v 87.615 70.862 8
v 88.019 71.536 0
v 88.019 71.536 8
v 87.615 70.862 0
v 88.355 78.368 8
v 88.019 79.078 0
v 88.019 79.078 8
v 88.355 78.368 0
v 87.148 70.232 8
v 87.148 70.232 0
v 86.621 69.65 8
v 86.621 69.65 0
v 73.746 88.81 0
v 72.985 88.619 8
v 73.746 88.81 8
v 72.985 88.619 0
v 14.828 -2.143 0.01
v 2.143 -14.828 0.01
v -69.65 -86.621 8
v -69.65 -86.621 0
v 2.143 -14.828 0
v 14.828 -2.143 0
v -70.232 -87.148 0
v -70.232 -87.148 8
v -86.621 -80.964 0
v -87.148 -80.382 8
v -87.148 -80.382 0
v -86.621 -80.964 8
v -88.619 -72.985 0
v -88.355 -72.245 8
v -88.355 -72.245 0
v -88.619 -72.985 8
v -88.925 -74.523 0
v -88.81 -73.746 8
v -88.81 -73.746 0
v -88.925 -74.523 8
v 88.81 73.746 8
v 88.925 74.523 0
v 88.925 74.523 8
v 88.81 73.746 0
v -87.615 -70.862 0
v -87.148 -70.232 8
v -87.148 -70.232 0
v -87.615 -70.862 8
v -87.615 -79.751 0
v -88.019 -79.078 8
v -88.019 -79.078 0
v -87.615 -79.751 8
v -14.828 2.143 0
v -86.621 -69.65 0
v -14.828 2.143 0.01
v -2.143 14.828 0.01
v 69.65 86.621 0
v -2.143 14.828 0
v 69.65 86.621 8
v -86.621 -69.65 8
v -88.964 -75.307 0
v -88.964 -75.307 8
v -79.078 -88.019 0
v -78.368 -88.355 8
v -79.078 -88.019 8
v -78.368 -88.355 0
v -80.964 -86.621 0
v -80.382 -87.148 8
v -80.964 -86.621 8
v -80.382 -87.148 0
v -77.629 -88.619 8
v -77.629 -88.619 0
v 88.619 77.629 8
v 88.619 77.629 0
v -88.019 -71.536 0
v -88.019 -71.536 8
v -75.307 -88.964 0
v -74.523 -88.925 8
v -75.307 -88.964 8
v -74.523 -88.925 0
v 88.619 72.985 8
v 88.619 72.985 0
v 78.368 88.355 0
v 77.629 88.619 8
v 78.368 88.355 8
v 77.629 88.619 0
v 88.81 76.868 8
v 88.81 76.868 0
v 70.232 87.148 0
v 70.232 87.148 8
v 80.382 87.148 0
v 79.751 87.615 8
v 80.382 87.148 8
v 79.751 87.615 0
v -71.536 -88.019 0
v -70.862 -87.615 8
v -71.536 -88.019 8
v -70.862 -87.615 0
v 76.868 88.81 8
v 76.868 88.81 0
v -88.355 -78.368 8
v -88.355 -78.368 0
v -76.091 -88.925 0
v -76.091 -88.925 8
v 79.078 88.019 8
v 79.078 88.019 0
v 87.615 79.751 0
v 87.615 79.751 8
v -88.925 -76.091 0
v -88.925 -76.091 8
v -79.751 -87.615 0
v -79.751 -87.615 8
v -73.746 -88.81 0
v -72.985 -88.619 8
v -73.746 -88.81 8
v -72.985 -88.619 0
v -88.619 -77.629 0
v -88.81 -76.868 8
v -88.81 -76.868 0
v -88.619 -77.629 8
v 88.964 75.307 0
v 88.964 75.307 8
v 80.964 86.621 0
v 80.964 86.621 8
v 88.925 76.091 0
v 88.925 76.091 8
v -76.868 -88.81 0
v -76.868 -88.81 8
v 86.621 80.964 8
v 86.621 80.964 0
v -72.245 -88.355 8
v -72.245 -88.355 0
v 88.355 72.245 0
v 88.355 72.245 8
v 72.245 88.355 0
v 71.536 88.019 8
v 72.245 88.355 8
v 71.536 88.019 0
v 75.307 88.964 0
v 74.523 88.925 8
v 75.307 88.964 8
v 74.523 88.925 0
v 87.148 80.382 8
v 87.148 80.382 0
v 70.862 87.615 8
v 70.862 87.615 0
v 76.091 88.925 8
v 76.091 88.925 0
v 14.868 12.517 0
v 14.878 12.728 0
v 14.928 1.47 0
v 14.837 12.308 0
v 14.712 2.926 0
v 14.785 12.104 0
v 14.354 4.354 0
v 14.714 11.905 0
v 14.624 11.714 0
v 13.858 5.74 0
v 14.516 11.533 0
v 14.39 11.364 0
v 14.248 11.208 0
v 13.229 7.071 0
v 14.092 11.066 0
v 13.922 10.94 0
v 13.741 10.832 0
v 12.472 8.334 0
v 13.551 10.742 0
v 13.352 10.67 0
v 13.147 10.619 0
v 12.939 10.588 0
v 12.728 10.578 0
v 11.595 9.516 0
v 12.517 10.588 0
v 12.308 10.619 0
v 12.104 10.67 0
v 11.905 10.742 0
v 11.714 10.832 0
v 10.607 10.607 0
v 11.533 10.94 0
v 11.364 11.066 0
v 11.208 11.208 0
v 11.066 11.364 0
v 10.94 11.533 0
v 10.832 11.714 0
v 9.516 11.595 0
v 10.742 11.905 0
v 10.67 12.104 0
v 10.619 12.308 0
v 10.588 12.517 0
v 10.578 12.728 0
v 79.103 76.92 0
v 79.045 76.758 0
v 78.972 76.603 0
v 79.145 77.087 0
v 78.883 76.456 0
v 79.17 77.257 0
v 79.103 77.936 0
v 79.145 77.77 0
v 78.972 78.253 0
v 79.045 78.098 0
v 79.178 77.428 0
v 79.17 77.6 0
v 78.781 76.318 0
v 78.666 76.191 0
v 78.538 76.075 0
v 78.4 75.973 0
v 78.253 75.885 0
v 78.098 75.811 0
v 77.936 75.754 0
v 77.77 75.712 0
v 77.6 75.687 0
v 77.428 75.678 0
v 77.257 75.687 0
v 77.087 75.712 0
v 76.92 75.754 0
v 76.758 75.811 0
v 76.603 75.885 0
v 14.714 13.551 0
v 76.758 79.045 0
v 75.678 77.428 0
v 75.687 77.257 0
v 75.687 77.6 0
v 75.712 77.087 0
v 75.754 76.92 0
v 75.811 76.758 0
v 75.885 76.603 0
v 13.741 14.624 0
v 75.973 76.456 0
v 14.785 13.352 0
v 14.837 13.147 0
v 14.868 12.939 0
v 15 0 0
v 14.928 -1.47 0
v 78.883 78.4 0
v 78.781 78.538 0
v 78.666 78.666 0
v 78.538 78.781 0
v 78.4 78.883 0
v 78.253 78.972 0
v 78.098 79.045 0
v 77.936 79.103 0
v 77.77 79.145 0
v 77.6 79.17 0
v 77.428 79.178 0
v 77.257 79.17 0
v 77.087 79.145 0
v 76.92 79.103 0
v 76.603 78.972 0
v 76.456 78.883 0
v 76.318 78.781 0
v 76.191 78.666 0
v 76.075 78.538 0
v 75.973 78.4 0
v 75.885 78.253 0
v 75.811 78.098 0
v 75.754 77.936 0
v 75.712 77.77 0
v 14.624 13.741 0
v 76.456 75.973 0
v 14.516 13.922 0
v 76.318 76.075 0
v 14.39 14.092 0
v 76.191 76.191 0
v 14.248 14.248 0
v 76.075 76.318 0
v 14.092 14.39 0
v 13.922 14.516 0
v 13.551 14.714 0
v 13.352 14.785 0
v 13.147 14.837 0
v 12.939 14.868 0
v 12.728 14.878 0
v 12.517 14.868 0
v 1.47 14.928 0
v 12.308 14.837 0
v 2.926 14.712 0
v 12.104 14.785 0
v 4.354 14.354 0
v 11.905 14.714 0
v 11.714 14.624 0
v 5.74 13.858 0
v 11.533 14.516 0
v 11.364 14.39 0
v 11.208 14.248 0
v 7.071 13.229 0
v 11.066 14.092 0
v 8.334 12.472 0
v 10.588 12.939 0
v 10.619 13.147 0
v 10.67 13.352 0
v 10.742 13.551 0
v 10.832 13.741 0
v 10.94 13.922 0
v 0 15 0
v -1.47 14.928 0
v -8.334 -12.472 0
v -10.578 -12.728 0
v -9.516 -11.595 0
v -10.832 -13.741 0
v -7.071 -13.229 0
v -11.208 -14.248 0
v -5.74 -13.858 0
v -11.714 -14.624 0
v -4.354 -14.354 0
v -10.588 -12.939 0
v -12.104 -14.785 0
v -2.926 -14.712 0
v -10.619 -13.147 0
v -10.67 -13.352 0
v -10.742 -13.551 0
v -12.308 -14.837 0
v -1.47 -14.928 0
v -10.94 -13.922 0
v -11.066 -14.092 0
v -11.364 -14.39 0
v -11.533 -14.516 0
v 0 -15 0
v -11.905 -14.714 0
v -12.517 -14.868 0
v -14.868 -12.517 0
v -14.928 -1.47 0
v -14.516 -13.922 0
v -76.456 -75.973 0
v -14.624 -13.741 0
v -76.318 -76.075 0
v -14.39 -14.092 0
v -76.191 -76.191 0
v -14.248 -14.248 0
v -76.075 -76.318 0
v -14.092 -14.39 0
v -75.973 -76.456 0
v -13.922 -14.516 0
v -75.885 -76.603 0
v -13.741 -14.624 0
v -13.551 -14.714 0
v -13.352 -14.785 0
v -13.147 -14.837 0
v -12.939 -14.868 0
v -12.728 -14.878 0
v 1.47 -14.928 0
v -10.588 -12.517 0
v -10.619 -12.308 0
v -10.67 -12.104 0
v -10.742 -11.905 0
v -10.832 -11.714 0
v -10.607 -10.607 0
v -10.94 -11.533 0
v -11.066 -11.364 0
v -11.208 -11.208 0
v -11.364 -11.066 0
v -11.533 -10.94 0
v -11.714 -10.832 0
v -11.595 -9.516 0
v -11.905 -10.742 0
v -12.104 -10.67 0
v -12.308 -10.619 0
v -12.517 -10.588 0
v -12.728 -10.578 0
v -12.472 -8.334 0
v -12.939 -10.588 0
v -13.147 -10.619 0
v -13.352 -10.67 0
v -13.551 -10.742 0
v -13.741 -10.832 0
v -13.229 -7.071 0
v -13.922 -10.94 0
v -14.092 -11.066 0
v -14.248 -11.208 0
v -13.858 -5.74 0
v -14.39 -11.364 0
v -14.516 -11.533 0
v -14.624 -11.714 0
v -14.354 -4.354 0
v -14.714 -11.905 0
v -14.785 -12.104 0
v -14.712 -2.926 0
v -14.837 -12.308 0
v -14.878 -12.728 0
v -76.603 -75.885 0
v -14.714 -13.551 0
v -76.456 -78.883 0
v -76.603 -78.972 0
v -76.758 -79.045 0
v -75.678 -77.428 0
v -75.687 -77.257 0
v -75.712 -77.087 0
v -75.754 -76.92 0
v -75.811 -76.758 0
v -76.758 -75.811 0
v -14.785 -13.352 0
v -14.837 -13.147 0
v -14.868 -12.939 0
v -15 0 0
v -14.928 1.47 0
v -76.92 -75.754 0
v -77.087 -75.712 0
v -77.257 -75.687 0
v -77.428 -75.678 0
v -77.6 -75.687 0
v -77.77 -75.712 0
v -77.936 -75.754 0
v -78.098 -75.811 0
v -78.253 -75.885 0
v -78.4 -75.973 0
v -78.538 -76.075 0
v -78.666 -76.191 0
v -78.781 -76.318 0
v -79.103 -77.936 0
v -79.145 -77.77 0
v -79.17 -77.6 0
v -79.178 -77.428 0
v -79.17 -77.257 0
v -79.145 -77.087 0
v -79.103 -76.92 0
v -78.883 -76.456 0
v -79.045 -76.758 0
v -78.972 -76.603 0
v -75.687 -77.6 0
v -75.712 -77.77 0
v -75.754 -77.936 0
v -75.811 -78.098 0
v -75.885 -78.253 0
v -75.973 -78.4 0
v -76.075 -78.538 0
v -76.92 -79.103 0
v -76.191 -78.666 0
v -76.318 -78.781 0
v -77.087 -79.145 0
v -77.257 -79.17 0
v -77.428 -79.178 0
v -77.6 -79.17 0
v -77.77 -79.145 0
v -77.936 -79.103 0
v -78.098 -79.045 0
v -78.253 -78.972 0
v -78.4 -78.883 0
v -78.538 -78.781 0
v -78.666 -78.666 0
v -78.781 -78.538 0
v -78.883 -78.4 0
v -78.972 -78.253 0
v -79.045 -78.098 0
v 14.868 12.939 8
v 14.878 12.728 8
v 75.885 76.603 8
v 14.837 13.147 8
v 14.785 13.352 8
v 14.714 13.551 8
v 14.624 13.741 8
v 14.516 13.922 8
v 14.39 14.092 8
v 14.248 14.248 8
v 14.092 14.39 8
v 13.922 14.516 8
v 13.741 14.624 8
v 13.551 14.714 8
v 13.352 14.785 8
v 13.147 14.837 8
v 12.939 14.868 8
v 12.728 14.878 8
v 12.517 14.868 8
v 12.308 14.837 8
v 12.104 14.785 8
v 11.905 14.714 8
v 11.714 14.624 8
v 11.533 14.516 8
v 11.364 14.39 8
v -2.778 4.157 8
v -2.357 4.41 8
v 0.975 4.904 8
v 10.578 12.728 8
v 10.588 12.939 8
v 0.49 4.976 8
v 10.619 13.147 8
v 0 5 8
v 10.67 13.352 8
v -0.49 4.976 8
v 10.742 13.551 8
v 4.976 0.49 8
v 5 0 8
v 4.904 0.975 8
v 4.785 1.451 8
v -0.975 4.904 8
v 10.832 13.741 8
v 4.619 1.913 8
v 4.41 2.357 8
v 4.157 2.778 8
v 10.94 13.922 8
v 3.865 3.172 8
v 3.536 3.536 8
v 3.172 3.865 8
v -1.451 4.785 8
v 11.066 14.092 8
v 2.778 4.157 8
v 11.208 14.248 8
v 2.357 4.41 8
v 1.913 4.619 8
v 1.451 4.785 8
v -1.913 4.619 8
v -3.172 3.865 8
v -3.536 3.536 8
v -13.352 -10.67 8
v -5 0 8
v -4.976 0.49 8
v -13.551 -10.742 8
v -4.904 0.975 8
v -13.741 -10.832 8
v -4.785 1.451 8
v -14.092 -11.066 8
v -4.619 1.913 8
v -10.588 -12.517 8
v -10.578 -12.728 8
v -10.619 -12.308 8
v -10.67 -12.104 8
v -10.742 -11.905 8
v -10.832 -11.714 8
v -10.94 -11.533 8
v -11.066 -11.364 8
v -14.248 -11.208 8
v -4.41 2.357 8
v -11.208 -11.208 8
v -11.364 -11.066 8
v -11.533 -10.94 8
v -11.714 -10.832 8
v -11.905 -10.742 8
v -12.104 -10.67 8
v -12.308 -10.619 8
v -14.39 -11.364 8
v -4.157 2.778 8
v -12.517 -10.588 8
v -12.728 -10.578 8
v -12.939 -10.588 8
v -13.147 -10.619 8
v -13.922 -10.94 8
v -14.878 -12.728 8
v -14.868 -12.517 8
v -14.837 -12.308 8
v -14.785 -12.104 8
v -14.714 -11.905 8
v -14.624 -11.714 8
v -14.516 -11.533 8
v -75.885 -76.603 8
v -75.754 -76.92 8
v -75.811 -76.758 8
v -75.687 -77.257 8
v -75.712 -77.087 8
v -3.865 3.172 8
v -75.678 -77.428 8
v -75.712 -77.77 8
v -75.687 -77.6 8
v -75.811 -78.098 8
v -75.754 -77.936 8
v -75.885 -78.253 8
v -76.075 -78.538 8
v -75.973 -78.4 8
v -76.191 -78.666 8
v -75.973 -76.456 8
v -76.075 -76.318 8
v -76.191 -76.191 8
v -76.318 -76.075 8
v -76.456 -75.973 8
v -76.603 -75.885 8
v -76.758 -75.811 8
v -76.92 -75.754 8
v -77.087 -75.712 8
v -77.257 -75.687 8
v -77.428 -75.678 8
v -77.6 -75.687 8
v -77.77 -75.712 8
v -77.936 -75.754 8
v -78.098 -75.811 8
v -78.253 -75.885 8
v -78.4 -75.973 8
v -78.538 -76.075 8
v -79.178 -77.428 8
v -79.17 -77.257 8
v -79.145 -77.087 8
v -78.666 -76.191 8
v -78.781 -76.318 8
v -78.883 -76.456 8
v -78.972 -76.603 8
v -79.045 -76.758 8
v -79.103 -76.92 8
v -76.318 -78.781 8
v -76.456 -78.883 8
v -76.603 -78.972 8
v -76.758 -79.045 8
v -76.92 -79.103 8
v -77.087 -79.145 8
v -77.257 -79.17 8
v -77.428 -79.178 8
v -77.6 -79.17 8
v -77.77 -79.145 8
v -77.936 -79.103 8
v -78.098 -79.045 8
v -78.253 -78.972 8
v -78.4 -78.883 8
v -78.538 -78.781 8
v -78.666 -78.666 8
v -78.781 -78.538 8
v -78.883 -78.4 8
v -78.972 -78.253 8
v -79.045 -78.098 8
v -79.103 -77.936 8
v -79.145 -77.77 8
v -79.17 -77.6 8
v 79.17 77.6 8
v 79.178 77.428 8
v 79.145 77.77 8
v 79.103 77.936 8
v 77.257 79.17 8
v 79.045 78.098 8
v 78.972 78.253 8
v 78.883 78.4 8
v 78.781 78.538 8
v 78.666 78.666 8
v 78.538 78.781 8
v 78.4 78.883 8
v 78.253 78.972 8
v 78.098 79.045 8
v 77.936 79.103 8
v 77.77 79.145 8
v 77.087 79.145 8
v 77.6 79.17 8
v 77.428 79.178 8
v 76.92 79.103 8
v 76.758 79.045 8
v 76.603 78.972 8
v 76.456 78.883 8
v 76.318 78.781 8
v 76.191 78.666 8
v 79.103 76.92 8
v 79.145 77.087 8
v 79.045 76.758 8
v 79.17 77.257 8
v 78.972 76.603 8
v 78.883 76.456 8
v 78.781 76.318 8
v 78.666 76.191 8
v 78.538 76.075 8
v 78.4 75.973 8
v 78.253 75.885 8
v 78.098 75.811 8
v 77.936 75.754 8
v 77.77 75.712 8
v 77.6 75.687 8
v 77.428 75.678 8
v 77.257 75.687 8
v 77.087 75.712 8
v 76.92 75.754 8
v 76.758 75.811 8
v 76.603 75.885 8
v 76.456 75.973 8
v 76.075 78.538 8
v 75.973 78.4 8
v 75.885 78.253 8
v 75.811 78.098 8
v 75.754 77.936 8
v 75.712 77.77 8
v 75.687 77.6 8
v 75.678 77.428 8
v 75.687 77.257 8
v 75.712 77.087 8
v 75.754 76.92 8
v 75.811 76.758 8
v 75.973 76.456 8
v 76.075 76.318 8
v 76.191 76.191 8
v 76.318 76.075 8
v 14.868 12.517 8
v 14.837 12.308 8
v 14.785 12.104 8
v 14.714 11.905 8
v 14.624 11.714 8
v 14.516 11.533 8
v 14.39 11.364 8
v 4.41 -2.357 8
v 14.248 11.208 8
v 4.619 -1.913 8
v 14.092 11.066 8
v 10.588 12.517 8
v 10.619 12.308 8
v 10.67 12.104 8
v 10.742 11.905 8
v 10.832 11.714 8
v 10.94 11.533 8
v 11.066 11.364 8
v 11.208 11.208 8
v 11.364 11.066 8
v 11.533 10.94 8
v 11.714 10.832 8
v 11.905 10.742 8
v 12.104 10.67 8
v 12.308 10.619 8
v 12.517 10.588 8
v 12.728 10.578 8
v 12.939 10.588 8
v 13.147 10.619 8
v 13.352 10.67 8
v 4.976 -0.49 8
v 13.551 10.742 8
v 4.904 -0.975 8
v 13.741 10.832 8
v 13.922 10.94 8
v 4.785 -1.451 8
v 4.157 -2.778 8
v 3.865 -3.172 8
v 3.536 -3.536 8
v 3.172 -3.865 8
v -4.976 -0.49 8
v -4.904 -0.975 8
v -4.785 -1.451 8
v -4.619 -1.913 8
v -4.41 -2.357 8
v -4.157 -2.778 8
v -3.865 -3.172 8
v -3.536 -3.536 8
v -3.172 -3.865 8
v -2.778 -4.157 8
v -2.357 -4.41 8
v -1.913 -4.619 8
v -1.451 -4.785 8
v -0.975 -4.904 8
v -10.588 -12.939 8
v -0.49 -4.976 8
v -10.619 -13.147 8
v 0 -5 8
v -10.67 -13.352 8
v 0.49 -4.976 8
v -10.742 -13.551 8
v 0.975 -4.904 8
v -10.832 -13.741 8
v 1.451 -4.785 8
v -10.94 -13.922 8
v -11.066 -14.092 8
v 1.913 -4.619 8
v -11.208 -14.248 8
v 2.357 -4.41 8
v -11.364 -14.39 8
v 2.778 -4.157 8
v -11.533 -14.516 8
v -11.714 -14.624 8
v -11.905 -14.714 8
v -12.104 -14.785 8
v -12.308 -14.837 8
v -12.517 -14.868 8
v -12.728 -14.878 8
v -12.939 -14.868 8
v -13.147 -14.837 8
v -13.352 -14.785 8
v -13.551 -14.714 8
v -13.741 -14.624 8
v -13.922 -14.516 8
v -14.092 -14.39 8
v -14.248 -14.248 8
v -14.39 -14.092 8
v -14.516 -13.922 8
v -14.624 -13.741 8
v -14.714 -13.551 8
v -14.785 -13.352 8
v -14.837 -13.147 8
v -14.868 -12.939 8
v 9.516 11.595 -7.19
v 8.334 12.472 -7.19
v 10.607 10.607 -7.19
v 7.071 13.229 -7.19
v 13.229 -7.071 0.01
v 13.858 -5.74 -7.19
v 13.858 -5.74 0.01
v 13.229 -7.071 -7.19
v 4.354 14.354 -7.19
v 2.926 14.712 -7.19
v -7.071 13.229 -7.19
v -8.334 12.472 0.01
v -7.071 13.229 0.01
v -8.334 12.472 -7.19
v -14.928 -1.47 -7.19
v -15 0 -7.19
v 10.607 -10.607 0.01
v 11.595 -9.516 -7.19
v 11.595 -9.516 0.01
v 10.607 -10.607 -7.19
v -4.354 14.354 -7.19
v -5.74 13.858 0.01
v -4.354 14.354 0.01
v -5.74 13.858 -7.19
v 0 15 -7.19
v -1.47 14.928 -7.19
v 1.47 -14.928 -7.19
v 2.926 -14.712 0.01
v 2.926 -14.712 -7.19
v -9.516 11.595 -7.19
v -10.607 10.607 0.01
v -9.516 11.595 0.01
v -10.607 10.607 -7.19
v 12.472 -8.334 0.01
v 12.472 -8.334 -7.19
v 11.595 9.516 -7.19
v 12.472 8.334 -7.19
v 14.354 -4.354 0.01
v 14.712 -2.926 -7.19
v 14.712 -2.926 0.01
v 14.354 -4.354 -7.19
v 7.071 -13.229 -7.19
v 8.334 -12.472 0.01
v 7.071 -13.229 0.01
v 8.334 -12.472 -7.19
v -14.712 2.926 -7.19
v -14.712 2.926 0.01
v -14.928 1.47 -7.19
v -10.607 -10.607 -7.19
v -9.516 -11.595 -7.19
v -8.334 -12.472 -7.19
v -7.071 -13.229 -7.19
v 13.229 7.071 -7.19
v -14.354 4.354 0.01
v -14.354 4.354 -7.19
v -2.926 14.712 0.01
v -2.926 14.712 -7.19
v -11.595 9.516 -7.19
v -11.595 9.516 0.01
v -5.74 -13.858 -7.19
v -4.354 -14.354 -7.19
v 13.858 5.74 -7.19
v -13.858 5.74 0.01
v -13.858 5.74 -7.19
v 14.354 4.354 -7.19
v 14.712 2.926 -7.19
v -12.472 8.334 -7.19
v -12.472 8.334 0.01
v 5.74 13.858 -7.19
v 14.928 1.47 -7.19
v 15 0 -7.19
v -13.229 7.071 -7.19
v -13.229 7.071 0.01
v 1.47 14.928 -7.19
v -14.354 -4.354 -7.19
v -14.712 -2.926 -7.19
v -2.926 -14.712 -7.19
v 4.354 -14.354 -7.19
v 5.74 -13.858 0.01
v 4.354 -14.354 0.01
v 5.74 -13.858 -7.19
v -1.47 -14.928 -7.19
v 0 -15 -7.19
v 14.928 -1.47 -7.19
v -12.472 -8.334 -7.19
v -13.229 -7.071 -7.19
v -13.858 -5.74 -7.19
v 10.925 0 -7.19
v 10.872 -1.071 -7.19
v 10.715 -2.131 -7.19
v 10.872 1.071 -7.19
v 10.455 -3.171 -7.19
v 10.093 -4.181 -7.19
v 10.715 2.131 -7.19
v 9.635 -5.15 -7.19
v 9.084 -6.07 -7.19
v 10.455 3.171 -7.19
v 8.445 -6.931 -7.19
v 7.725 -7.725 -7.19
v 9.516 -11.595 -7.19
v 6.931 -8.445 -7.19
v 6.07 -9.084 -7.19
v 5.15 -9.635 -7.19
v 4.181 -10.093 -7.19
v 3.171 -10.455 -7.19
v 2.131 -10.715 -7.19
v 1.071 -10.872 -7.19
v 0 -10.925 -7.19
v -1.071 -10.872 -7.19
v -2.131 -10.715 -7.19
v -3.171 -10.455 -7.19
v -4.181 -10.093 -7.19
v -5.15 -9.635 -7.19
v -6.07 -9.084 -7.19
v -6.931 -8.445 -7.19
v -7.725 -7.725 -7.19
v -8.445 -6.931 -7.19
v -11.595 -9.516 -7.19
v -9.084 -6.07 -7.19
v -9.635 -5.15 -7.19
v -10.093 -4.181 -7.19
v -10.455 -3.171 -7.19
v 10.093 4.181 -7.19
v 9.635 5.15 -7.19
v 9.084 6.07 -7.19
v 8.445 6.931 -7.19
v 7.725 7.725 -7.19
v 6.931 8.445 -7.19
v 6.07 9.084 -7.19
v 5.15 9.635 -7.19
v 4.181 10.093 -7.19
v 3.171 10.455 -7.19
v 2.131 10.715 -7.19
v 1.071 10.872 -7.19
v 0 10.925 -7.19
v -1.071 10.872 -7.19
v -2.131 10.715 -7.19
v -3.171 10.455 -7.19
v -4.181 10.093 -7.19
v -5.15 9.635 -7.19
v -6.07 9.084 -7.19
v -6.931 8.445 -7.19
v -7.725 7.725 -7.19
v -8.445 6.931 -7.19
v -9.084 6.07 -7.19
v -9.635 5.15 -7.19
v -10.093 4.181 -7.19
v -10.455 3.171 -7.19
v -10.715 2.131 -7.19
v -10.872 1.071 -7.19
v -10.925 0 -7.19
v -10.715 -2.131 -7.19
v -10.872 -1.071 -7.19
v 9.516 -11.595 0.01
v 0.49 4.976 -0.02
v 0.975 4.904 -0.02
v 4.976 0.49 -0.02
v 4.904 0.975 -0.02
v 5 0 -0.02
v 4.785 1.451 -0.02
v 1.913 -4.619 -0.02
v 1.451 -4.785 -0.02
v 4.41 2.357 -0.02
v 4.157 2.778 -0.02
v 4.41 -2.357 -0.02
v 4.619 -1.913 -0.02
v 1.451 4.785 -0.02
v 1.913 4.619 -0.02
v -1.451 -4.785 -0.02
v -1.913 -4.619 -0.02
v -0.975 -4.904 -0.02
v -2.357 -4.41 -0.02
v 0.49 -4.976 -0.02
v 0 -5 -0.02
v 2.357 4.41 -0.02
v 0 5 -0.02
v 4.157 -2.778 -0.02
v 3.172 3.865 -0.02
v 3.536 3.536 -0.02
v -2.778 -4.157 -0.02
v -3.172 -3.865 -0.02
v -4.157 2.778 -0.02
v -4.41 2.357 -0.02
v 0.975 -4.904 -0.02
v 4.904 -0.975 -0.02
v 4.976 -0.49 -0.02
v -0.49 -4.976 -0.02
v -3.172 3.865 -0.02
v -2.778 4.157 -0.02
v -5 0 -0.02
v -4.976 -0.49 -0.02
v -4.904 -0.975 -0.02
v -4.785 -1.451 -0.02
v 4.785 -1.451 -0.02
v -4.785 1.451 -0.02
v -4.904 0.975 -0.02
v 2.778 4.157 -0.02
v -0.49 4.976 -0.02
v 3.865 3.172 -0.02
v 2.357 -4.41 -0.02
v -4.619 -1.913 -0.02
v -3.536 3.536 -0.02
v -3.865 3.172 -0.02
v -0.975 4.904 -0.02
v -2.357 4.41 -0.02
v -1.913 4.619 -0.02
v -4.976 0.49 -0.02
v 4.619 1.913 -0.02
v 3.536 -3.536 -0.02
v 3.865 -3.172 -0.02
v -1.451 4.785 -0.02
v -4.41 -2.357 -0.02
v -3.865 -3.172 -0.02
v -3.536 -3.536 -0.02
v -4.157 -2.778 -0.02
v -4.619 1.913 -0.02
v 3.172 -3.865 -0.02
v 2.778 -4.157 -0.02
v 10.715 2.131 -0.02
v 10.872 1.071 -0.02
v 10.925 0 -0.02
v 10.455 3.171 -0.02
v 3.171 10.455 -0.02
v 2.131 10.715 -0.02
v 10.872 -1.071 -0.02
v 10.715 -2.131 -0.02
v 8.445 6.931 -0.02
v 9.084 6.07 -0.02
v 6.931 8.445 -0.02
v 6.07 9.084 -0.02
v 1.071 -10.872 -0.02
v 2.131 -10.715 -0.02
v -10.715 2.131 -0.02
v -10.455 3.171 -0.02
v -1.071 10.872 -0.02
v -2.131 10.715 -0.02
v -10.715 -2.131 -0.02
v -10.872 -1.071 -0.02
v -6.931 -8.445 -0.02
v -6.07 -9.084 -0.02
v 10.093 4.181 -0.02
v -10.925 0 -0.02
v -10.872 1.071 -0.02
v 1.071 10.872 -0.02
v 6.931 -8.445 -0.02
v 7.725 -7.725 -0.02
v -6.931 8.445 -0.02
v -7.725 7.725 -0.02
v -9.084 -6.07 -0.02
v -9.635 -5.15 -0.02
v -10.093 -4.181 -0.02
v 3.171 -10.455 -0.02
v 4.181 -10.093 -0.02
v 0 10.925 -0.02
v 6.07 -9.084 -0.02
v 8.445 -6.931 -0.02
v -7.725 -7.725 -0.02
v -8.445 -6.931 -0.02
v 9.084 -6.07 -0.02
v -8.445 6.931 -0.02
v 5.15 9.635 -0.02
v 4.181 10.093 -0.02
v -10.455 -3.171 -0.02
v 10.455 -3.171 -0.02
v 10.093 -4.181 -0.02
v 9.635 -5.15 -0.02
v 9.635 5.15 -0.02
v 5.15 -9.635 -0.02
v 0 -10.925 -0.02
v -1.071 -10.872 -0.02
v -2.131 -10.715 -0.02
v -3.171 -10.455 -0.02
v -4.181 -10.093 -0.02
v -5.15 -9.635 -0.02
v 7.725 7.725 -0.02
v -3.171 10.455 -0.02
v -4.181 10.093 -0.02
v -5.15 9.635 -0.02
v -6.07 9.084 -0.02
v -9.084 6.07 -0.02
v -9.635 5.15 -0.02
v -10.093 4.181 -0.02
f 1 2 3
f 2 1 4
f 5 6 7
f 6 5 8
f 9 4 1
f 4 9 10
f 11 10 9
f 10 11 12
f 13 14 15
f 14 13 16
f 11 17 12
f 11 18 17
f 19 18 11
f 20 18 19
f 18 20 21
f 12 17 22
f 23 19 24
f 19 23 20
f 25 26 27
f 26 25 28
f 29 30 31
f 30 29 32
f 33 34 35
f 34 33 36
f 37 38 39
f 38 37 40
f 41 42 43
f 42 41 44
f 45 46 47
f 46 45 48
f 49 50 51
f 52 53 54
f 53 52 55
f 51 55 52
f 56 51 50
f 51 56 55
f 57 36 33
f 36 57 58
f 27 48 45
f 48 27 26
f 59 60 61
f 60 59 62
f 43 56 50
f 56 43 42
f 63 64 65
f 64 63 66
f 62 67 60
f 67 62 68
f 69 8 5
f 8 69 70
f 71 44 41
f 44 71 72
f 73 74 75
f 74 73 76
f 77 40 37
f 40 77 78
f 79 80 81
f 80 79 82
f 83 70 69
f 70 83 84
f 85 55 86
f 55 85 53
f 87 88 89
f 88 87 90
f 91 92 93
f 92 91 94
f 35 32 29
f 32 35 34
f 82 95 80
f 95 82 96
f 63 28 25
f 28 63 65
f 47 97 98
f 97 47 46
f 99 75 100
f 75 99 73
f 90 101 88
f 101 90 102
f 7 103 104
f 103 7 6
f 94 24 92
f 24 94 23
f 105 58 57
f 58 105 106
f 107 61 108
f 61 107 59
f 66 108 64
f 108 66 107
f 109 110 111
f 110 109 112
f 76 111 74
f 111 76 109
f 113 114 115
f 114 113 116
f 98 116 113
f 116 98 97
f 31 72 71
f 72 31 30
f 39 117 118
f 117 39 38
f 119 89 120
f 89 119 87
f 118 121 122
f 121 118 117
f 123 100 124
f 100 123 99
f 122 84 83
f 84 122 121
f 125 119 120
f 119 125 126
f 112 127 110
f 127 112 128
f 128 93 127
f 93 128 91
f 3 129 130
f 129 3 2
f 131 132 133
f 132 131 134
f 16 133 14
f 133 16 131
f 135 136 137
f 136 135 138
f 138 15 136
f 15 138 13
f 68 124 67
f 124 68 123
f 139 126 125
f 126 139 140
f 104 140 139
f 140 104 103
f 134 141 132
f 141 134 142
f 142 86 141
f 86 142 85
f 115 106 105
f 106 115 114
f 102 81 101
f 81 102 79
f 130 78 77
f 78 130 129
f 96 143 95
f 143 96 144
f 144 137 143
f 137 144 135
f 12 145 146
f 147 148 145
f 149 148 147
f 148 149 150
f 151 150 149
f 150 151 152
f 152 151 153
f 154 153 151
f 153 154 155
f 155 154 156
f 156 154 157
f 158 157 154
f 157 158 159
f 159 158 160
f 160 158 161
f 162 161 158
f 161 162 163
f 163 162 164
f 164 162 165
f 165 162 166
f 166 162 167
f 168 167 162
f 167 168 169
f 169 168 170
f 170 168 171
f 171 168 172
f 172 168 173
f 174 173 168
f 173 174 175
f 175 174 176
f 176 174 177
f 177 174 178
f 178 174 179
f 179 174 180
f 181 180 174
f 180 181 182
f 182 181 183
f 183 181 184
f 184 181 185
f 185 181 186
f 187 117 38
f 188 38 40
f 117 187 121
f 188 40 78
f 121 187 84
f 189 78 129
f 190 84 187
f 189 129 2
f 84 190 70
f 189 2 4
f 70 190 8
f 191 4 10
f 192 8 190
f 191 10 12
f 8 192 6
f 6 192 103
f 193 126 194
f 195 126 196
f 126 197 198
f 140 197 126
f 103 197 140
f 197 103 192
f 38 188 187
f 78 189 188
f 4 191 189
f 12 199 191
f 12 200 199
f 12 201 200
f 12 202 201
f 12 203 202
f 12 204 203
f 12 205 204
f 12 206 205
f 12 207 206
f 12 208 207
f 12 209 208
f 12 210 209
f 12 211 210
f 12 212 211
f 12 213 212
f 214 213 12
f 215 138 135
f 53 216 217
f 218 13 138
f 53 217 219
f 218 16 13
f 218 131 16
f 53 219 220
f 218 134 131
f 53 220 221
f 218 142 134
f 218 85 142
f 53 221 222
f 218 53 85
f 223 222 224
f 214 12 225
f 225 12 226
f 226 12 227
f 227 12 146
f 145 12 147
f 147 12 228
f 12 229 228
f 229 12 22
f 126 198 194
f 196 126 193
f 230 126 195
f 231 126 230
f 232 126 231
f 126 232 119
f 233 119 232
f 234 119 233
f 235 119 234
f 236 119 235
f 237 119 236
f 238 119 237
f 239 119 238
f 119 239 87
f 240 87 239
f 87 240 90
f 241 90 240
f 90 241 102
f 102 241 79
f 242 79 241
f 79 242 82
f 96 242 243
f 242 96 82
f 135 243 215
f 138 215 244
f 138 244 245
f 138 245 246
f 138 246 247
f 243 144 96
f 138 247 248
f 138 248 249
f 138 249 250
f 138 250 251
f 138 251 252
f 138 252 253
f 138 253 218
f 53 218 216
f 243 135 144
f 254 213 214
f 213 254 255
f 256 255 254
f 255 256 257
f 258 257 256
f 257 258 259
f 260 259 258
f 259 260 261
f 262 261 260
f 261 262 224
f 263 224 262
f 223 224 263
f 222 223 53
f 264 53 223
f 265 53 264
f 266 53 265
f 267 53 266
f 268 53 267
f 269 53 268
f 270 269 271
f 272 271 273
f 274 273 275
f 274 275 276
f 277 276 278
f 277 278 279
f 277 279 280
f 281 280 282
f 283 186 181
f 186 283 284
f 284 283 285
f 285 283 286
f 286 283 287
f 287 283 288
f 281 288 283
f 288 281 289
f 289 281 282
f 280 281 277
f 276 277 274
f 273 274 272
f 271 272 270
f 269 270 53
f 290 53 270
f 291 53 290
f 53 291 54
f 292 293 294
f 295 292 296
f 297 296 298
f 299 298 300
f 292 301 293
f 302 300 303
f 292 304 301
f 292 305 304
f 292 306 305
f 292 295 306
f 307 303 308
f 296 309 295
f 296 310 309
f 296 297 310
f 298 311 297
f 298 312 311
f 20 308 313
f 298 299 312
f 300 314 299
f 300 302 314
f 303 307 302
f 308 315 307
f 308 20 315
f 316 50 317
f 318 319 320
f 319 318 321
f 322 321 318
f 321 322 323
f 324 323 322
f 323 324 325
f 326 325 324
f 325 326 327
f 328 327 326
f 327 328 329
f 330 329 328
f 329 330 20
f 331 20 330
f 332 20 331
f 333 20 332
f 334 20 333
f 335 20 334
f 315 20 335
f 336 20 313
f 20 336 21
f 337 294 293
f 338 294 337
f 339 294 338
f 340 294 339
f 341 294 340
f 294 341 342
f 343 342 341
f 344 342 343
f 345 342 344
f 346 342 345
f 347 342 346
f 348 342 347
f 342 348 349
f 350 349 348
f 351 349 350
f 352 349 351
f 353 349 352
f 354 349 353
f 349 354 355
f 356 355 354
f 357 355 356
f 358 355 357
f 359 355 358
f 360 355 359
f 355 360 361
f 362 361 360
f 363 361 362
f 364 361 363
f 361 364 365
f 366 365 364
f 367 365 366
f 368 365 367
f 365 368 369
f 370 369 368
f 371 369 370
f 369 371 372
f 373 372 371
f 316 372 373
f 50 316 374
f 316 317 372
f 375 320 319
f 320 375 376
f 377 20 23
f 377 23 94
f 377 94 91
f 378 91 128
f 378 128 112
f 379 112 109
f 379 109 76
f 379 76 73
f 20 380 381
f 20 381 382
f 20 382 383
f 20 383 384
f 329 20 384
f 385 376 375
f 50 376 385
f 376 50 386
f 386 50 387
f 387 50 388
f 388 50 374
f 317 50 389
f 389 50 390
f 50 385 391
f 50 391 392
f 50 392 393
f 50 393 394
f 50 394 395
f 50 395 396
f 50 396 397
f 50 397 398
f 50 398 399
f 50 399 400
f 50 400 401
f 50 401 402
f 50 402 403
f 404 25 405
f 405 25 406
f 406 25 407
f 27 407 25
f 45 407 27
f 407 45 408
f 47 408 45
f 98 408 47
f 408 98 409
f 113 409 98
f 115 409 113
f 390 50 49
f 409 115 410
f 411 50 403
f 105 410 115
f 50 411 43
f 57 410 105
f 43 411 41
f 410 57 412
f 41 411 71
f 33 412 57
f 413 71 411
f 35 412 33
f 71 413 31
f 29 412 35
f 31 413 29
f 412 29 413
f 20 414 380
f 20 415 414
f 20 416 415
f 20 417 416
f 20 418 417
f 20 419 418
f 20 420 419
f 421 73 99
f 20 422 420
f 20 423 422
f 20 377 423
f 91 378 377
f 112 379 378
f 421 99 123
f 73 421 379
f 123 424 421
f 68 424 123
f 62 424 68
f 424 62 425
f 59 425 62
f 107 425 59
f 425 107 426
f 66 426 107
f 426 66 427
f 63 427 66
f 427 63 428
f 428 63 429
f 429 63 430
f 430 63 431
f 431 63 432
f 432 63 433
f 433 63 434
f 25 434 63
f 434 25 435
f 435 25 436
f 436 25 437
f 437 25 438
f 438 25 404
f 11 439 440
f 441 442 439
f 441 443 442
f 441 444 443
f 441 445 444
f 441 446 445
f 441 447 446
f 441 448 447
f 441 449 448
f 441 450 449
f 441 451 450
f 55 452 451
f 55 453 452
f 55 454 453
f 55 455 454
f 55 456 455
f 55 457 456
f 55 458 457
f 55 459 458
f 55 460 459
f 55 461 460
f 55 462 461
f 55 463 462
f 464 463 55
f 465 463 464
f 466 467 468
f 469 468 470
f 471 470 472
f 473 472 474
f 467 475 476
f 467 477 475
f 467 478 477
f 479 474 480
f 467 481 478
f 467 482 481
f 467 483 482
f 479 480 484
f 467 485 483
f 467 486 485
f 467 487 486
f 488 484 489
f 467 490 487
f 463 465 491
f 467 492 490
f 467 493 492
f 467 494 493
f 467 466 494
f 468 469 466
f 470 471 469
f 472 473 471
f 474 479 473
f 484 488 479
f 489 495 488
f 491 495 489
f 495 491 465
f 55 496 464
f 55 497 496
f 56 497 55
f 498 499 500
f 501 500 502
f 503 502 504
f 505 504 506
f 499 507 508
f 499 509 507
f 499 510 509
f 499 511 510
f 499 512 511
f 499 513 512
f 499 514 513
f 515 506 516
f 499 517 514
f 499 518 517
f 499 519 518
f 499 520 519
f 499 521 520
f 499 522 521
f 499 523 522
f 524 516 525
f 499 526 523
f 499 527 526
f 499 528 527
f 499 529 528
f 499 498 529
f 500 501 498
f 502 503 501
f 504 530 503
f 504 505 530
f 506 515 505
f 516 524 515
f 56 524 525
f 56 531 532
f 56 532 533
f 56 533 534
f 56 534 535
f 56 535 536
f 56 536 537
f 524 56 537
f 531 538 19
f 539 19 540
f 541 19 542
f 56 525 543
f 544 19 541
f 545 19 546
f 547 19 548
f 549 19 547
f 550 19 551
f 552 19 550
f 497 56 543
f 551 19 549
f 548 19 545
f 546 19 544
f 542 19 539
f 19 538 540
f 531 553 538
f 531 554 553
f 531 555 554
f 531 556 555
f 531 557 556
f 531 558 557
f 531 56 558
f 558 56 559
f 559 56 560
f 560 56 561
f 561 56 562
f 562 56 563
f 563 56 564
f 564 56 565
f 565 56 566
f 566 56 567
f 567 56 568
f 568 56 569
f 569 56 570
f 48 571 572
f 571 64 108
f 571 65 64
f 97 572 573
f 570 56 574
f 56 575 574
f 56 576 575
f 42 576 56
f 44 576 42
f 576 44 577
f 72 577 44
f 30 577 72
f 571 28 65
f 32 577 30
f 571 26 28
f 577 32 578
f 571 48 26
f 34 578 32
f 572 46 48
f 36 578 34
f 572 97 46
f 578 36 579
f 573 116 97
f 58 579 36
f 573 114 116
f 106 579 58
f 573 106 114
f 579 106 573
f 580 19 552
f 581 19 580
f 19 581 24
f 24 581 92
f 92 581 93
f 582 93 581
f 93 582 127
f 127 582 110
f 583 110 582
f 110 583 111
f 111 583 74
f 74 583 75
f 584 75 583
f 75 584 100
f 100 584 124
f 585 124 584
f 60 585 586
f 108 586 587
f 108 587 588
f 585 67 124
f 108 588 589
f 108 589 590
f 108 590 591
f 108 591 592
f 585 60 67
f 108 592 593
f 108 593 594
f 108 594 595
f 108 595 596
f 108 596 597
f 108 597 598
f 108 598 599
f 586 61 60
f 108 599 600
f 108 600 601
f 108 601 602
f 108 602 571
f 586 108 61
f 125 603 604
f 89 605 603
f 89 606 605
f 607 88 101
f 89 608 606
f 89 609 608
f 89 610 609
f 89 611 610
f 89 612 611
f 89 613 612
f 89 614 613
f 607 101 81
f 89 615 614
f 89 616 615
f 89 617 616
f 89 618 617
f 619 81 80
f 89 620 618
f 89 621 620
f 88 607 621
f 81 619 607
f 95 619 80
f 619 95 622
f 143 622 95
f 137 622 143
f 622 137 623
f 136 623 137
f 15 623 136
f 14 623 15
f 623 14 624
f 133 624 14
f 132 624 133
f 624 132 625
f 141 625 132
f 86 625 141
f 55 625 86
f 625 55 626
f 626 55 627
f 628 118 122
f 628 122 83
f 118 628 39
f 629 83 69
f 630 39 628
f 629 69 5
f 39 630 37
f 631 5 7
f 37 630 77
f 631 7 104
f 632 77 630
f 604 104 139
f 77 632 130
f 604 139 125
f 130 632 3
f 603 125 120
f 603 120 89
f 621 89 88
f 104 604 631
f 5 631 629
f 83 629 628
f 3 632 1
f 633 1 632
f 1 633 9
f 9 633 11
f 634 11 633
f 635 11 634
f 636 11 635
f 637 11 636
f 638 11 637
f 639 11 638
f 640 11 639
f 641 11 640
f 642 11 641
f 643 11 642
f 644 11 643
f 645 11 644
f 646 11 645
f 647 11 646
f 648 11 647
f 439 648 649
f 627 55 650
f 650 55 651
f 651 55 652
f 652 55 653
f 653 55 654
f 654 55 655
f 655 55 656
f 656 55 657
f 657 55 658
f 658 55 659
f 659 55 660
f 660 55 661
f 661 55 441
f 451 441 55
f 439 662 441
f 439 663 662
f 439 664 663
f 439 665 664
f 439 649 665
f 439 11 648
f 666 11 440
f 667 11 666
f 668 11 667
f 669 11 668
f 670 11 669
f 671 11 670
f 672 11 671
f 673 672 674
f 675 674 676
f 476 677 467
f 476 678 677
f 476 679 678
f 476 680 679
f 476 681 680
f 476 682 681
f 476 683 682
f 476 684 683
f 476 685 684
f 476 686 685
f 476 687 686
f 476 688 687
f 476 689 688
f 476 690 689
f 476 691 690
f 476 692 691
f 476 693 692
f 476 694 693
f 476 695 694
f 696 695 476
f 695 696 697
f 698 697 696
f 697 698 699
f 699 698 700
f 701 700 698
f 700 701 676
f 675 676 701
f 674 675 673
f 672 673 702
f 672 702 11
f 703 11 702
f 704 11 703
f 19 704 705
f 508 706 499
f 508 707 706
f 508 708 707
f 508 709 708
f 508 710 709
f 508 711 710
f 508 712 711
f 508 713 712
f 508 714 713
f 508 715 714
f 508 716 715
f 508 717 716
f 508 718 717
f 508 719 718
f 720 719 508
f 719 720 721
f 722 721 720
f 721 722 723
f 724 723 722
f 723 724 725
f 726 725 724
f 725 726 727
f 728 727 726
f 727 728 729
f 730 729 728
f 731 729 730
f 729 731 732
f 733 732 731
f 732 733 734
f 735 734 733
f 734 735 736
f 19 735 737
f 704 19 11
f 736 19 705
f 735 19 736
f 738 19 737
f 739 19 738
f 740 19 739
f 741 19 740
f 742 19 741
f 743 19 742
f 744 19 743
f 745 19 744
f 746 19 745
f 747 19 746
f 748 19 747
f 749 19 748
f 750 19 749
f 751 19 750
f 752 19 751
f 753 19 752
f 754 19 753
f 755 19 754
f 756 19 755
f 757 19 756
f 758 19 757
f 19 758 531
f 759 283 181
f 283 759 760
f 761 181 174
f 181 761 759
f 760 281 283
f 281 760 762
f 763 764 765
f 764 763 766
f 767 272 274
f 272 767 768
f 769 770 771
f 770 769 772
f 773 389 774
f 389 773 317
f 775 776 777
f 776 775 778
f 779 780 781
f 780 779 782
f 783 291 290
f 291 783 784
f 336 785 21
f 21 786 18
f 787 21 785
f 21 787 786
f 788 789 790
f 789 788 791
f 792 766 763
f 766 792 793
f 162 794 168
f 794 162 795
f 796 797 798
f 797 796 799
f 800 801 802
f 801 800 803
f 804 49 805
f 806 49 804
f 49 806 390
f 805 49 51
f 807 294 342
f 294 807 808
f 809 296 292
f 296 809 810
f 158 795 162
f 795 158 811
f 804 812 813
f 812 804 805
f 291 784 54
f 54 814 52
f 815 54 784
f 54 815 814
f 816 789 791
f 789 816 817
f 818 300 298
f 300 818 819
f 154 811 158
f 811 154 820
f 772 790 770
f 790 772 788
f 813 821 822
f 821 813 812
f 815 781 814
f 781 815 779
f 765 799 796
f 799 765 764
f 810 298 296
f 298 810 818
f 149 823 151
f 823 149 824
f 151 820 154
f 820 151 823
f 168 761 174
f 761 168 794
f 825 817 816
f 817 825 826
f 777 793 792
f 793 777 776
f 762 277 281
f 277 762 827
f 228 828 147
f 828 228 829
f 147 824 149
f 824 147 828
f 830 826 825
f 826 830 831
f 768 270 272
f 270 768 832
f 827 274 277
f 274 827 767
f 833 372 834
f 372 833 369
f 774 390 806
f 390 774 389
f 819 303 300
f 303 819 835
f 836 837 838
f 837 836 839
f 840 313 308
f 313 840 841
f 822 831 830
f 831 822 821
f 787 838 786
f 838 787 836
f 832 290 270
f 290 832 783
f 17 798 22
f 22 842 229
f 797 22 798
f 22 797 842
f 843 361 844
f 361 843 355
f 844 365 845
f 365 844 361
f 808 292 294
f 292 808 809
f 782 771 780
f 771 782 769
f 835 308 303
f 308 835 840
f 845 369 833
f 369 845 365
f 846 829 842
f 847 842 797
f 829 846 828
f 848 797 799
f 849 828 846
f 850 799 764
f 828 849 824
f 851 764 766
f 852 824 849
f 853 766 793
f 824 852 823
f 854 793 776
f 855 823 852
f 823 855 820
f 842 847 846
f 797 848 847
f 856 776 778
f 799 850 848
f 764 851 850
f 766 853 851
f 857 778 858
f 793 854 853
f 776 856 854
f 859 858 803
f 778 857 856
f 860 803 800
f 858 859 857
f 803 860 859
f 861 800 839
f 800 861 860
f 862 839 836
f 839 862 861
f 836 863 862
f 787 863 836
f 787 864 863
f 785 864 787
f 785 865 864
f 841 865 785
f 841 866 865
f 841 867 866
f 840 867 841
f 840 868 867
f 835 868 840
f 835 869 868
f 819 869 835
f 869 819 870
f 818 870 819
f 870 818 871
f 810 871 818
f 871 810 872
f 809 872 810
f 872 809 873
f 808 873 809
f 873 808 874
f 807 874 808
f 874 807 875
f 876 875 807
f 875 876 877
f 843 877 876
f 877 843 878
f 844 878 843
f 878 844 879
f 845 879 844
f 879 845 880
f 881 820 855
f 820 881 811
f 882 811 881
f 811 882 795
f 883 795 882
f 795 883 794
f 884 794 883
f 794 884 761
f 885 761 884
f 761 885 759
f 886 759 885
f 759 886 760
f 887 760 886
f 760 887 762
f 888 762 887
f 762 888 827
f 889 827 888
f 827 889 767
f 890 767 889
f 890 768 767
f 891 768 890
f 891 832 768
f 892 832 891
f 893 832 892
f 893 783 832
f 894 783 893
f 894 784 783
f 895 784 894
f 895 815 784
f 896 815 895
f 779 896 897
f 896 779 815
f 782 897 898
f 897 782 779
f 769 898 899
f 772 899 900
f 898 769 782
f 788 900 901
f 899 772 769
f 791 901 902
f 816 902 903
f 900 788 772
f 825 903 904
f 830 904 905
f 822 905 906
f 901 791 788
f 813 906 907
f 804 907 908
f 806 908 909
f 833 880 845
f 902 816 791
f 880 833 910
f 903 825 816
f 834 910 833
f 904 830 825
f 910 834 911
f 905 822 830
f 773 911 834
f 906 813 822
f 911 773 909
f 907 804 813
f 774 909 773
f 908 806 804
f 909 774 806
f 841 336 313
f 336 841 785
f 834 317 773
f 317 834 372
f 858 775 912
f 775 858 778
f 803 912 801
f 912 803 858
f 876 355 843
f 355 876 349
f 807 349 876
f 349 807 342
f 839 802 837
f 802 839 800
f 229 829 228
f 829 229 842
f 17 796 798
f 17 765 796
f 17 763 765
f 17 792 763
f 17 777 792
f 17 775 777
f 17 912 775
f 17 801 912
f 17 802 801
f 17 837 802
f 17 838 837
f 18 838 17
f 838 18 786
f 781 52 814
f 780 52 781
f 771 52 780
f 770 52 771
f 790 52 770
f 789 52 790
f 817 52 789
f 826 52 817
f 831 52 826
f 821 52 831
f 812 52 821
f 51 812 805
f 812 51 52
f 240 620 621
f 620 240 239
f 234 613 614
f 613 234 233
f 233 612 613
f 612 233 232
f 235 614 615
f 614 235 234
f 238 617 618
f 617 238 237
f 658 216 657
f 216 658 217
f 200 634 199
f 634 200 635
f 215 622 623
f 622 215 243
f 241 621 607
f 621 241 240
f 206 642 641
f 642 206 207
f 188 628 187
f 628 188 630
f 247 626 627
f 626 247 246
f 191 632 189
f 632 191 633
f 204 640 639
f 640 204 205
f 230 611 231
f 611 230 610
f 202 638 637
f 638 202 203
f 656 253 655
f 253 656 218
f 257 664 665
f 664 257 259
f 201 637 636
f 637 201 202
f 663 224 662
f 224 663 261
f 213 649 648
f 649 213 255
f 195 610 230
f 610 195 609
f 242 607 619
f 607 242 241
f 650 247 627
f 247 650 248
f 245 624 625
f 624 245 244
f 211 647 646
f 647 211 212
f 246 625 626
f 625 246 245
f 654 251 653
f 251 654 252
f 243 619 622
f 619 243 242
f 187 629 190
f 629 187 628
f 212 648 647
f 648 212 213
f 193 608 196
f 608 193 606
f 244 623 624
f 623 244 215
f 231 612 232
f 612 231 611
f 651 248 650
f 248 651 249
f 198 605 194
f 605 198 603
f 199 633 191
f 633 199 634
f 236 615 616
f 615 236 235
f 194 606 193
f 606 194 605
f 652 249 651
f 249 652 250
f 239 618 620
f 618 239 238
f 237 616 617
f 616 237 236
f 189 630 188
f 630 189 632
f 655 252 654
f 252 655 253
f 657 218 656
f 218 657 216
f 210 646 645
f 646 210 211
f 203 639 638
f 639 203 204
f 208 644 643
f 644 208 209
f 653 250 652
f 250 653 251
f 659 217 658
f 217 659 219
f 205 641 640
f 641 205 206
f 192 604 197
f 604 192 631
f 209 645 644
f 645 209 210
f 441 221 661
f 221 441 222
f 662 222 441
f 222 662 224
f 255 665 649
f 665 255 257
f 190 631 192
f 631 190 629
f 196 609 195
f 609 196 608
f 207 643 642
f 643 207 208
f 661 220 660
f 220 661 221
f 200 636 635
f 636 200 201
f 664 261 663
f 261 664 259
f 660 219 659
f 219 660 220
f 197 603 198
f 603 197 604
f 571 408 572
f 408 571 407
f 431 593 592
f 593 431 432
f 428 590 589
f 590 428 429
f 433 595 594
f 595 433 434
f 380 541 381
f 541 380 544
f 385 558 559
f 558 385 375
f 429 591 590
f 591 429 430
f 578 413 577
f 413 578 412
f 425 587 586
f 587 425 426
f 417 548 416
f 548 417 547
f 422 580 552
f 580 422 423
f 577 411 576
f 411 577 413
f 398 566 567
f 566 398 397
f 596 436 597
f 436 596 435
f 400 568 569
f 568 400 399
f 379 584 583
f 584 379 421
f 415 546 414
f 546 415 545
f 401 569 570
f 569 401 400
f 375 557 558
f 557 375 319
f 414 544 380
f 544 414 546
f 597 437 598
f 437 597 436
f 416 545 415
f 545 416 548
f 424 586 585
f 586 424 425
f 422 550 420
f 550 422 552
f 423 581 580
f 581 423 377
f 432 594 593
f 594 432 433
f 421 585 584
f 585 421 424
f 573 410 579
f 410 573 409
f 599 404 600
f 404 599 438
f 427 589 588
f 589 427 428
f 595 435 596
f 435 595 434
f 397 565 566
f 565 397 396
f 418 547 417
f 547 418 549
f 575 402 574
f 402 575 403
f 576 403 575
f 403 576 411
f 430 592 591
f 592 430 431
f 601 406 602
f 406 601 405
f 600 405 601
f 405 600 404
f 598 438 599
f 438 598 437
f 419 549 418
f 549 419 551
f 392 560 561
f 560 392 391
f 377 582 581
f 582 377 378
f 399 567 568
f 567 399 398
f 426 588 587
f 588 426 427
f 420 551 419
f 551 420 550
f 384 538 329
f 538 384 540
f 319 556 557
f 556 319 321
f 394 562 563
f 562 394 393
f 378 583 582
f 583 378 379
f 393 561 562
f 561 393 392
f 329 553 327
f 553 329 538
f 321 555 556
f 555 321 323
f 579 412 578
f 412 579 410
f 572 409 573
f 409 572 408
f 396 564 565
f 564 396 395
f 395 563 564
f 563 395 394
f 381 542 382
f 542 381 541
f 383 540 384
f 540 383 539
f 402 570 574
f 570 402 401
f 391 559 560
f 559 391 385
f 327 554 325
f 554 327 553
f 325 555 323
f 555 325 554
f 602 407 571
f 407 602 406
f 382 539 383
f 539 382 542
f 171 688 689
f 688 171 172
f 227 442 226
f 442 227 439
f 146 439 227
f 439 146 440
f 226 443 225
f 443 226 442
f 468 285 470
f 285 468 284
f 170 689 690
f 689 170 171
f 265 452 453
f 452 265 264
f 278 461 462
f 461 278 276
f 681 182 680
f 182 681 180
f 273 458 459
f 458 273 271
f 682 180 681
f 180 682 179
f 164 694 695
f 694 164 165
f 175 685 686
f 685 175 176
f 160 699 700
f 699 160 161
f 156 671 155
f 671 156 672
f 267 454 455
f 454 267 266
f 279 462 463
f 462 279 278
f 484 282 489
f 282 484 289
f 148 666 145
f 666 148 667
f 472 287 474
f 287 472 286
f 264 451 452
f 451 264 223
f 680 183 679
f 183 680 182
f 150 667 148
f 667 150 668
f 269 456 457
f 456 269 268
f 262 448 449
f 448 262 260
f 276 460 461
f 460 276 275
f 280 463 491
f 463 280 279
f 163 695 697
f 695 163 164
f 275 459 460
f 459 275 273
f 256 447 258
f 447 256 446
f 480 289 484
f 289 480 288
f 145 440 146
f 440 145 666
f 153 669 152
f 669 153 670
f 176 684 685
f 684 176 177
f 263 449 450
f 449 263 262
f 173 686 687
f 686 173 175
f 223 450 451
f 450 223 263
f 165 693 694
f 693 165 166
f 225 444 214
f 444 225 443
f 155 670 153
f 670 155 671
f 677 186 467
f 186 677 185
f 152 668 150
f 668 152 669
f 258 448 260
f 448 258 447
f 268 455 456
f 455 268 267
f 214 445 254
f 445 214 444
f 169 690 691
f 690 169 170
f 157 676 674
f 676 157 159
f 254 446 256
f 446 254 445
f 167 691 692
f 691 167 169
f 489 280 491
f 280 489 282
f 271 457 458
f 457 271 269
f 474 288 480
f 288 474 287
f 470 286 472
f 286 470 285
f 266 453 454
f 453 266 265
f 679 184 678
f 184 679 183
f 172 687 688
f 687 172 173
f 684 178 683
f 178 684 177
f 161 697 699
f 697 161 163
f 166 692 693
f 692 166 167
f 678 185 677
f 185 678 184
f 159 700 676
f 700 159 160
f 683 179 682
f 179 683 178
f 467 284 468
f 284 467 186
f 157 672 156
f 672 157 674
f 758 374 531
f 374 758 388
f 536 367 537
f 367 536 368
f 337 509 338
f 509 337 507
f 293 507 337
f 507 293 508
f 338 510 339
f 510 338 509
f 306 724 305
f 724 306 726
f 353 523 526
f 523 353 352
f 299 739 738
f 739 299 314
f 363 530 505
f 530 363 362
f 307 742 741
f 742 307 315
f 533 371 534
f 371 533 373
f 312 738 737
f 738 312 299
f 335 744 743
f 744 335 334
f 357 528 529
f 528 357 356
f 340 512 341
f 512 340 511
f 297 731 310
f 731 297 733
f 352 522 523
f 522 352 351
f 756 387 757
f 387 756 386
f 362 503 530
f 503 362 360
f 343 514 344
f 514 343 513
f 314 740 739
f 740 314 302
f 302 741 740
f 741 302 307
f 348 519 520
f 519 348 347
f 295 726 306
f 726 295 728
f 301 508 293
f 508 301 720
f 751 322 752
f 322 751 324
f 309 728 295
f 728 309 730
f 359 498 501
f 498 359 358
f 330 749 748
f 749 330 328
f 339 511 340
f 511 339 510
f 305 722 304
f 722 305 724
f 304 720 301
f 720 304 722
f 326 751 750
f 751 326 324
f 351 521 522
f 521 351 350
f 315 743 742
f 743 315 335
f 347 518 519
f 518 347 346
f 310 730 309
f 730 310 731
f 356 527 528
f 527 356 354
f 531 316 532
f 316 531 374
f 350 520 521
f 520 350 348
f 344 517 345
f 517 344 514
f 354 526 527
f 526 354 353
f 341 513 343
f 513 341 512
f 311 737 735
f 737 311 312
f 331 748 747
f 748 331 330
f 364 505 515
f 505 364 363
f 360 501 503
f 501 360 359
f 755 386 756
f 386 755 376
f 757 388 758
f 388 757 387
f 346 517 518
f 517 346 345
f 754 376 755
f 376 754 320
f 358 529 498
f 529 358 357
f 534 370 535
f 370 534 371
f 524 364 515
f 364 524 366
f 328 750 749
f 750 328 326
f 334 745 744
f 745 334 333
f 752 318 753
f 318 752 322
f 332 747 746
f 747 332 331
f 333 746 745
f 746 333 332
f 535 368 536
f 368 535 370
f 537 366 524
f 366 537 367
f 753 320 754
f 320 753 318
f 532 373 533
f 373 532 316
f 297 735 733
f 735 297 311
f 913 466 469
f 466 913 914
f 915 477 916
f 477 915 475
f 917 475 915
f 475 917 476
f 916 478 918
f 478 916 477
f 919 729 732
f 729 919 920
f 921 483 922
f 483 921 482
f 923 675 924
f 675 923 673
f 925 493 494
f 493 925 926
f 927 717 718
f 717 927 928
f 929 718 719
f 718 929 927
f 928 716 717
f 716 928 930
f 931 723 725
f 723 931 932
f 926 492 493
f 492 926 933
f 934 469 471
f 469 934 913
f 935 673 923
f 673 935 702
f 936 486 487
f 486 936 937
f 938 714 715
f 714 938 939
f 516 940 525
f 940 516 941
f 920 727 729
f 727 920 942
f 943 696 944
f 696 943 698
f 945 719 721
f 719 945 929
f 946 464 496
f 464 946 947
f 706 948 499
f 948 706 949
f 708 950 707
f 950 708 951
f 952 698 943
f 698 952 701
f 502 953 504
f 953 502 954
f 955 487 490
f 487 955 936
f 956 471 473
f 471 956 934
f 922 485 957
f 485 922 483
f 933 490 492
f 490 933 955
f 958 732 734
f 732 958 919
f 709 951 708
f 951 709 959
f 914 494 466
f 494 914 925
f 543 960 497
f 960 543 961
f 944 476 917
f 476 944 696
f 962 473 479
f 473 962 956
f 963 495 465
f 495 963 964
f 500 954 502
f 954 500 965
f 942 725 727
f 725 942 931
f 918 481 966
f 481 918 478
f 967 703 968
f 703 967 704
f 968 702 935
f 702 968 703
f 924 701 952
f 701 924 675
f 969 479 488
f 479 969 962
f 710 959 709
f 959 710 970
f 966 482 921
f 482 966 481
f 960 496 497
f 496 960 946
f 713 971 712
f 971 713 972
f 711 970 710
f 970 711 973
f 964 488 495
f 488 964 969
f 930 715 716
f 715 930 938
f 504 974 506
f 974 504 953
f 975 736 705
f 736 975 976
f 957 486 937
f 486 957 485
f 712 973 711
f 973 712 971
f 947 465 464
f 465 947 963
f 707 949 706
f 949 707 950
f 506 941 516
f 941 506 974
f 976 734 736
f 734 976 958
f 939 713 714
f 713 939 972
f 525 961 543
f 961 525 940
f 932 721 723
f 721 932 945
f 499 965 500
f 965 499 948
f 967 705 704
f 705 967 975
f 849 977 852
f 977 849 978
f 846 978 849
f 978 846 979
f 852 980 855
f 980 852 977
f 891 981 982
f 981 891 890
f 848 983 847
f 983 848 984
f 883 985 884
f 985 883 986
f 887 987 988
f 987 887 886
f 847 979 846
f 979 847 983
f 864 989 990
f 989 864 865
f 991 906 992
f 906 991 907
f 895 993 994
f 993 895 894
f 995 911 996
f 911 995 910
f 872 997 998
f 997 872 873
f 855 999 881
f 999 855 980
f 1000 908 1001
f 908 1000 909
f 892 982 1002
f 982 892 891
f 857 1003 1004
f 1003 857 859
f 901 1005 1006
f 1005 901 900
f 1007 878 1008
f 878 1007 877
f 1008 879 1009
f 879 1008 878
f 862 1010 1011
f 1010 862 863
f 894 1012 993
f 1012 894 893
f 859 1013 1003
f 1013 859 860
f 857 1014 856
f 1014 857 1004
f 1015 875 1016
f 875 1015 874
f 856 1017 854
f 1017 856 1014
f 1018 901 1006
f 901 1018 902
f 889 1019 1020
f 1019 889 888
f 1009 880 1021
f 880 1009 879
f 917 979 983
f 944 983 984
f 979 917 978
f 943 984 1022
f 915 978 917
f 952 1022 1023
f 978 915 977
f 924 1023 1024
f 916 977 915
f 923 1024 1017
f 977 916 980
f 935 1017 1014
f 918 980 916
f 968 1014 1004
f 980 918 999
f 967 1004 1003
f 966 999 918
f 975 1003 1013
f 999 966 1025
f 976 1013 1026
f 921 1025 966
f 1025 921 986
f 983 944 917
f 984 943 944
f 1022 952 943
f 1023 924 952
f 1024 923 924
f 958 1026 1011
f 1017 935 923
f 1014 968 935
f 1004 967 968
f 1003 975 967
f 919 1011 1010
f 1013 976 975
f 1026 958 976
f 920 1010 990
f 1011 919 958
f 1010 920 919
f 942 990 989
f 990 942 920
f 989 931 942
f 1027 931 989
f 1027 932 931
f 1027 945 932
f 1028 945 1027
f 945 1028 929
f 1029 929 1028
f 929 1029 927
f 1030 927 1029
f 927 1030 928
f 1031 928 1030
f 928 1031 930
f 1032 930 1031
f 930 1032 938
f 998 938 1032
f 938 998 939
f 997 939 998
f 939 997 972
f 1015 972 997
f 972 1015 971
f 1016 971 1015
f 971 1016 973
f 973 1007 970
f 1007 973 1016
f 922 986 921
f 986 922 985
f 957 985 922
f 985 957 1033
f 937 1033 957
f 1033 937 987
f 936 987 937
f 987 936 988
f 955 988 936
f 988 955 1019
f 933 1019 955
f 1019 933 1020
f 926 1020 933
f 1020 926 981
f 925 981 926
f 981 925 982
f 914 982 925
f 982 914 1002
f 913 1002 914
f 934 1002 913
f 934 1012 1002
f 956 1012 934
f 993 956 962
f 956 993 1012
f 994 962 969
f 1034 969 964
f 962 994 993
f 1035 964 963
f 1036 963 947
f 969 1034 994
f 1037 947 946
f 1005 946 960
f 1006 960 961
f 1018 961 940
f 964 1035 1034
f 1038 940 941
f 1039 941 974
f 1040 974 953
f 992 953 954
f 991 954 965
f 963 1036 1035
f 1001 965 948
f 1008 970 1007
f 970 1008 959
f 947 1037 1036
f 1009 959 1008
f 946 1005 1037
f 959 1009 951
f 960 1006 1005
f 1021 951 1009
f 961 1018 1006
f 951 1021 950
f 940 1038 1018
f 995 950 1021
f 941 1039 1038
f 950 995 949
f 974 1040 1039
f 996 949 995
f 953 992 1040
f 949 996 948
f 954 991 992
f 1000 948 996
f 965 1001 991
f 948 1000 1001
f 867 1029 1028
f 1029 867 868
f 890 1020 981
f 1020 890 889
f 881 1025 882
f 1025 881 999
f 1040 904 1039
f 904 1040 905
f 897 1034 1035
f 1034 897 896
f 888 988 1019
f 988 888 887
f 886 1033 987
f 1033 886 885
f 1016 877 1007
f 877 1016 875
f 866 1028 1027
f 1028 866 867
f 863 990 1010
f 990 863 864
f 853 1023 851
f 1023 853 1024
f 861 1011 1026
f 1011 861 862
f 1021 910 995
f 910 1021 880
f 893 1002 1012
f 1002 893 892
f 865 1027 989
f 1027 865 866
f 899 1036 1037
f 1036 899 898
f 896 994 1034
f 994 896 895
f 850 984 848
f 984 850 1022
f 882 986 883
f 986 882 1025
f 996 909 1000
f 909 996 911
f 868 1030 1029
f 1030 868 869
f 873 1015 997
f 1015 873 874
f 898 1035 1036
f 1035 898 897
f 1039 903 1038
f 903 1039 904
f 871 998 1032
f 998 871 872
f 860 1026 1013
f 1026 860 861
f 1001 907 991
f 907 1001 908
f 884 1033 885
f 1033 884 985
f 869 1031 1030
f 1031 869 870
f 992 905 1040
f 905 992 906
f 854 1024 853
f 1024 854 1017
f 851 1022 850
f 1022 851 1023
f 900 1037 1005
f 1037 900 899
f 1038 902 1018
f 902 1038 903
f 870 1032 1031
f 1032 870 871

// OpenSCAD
// Gen-CP — front BEARING BRIDGE (bar endbell, 2026-10-10): a 608 boss on a 24 mm wide bar that spans the
// two frame rods at 45 deg and 45+180 deg (R = flange_bolt_r). The front bridge uses the rods at 45/225 deg, the rear
// bridge the rods at 135/315 deg, so the two bridges cross at 90 deg and the stator is held at 4 points.
// A bar instead of a full disc is what lets this big-ring kit fit ONE 410 mm plate. Print flat face DOWN (boss up, no supports).
// Brace holes (temporary M4 jack rods, R = brace_r) sit on the bar axis.
include <parameters.scad>;
$fn = 64;
bar_w = 24;
bar_len = 2 * (flange_bolt_r + 9);
module bar_2d() { offset(r=8) offset(delta=-8) square([bar_len, bar_w], center=true); }
difference() {
    rotate([0, 0, 45]) union() {
        linear_extrude(endbell_thick) bar_2d();
        translate([0, 0, -bearing_h + 0.01]) cylinder(d=30, h=bearing_h);
    }
    translate([0, 0, -bearing_h - 0.1]) cylinder(d=endbell_shaft_clear, h=50);
    translate([0, 0, -bearing_h - 0.02]) cylinder(d=bearing_d, h=bearing_h);
    for (s = [0, 180]) rotate([0, 0, 45 + s]) translate([flange_bolt_r, 0, -20]) cylinder(d=m3_clear, h=60);
    for (a = brace_angles) translate([brace_r*cos(a), brace_r*sin(a), -20]) cylinder(d=brace_d, h=50);
}
